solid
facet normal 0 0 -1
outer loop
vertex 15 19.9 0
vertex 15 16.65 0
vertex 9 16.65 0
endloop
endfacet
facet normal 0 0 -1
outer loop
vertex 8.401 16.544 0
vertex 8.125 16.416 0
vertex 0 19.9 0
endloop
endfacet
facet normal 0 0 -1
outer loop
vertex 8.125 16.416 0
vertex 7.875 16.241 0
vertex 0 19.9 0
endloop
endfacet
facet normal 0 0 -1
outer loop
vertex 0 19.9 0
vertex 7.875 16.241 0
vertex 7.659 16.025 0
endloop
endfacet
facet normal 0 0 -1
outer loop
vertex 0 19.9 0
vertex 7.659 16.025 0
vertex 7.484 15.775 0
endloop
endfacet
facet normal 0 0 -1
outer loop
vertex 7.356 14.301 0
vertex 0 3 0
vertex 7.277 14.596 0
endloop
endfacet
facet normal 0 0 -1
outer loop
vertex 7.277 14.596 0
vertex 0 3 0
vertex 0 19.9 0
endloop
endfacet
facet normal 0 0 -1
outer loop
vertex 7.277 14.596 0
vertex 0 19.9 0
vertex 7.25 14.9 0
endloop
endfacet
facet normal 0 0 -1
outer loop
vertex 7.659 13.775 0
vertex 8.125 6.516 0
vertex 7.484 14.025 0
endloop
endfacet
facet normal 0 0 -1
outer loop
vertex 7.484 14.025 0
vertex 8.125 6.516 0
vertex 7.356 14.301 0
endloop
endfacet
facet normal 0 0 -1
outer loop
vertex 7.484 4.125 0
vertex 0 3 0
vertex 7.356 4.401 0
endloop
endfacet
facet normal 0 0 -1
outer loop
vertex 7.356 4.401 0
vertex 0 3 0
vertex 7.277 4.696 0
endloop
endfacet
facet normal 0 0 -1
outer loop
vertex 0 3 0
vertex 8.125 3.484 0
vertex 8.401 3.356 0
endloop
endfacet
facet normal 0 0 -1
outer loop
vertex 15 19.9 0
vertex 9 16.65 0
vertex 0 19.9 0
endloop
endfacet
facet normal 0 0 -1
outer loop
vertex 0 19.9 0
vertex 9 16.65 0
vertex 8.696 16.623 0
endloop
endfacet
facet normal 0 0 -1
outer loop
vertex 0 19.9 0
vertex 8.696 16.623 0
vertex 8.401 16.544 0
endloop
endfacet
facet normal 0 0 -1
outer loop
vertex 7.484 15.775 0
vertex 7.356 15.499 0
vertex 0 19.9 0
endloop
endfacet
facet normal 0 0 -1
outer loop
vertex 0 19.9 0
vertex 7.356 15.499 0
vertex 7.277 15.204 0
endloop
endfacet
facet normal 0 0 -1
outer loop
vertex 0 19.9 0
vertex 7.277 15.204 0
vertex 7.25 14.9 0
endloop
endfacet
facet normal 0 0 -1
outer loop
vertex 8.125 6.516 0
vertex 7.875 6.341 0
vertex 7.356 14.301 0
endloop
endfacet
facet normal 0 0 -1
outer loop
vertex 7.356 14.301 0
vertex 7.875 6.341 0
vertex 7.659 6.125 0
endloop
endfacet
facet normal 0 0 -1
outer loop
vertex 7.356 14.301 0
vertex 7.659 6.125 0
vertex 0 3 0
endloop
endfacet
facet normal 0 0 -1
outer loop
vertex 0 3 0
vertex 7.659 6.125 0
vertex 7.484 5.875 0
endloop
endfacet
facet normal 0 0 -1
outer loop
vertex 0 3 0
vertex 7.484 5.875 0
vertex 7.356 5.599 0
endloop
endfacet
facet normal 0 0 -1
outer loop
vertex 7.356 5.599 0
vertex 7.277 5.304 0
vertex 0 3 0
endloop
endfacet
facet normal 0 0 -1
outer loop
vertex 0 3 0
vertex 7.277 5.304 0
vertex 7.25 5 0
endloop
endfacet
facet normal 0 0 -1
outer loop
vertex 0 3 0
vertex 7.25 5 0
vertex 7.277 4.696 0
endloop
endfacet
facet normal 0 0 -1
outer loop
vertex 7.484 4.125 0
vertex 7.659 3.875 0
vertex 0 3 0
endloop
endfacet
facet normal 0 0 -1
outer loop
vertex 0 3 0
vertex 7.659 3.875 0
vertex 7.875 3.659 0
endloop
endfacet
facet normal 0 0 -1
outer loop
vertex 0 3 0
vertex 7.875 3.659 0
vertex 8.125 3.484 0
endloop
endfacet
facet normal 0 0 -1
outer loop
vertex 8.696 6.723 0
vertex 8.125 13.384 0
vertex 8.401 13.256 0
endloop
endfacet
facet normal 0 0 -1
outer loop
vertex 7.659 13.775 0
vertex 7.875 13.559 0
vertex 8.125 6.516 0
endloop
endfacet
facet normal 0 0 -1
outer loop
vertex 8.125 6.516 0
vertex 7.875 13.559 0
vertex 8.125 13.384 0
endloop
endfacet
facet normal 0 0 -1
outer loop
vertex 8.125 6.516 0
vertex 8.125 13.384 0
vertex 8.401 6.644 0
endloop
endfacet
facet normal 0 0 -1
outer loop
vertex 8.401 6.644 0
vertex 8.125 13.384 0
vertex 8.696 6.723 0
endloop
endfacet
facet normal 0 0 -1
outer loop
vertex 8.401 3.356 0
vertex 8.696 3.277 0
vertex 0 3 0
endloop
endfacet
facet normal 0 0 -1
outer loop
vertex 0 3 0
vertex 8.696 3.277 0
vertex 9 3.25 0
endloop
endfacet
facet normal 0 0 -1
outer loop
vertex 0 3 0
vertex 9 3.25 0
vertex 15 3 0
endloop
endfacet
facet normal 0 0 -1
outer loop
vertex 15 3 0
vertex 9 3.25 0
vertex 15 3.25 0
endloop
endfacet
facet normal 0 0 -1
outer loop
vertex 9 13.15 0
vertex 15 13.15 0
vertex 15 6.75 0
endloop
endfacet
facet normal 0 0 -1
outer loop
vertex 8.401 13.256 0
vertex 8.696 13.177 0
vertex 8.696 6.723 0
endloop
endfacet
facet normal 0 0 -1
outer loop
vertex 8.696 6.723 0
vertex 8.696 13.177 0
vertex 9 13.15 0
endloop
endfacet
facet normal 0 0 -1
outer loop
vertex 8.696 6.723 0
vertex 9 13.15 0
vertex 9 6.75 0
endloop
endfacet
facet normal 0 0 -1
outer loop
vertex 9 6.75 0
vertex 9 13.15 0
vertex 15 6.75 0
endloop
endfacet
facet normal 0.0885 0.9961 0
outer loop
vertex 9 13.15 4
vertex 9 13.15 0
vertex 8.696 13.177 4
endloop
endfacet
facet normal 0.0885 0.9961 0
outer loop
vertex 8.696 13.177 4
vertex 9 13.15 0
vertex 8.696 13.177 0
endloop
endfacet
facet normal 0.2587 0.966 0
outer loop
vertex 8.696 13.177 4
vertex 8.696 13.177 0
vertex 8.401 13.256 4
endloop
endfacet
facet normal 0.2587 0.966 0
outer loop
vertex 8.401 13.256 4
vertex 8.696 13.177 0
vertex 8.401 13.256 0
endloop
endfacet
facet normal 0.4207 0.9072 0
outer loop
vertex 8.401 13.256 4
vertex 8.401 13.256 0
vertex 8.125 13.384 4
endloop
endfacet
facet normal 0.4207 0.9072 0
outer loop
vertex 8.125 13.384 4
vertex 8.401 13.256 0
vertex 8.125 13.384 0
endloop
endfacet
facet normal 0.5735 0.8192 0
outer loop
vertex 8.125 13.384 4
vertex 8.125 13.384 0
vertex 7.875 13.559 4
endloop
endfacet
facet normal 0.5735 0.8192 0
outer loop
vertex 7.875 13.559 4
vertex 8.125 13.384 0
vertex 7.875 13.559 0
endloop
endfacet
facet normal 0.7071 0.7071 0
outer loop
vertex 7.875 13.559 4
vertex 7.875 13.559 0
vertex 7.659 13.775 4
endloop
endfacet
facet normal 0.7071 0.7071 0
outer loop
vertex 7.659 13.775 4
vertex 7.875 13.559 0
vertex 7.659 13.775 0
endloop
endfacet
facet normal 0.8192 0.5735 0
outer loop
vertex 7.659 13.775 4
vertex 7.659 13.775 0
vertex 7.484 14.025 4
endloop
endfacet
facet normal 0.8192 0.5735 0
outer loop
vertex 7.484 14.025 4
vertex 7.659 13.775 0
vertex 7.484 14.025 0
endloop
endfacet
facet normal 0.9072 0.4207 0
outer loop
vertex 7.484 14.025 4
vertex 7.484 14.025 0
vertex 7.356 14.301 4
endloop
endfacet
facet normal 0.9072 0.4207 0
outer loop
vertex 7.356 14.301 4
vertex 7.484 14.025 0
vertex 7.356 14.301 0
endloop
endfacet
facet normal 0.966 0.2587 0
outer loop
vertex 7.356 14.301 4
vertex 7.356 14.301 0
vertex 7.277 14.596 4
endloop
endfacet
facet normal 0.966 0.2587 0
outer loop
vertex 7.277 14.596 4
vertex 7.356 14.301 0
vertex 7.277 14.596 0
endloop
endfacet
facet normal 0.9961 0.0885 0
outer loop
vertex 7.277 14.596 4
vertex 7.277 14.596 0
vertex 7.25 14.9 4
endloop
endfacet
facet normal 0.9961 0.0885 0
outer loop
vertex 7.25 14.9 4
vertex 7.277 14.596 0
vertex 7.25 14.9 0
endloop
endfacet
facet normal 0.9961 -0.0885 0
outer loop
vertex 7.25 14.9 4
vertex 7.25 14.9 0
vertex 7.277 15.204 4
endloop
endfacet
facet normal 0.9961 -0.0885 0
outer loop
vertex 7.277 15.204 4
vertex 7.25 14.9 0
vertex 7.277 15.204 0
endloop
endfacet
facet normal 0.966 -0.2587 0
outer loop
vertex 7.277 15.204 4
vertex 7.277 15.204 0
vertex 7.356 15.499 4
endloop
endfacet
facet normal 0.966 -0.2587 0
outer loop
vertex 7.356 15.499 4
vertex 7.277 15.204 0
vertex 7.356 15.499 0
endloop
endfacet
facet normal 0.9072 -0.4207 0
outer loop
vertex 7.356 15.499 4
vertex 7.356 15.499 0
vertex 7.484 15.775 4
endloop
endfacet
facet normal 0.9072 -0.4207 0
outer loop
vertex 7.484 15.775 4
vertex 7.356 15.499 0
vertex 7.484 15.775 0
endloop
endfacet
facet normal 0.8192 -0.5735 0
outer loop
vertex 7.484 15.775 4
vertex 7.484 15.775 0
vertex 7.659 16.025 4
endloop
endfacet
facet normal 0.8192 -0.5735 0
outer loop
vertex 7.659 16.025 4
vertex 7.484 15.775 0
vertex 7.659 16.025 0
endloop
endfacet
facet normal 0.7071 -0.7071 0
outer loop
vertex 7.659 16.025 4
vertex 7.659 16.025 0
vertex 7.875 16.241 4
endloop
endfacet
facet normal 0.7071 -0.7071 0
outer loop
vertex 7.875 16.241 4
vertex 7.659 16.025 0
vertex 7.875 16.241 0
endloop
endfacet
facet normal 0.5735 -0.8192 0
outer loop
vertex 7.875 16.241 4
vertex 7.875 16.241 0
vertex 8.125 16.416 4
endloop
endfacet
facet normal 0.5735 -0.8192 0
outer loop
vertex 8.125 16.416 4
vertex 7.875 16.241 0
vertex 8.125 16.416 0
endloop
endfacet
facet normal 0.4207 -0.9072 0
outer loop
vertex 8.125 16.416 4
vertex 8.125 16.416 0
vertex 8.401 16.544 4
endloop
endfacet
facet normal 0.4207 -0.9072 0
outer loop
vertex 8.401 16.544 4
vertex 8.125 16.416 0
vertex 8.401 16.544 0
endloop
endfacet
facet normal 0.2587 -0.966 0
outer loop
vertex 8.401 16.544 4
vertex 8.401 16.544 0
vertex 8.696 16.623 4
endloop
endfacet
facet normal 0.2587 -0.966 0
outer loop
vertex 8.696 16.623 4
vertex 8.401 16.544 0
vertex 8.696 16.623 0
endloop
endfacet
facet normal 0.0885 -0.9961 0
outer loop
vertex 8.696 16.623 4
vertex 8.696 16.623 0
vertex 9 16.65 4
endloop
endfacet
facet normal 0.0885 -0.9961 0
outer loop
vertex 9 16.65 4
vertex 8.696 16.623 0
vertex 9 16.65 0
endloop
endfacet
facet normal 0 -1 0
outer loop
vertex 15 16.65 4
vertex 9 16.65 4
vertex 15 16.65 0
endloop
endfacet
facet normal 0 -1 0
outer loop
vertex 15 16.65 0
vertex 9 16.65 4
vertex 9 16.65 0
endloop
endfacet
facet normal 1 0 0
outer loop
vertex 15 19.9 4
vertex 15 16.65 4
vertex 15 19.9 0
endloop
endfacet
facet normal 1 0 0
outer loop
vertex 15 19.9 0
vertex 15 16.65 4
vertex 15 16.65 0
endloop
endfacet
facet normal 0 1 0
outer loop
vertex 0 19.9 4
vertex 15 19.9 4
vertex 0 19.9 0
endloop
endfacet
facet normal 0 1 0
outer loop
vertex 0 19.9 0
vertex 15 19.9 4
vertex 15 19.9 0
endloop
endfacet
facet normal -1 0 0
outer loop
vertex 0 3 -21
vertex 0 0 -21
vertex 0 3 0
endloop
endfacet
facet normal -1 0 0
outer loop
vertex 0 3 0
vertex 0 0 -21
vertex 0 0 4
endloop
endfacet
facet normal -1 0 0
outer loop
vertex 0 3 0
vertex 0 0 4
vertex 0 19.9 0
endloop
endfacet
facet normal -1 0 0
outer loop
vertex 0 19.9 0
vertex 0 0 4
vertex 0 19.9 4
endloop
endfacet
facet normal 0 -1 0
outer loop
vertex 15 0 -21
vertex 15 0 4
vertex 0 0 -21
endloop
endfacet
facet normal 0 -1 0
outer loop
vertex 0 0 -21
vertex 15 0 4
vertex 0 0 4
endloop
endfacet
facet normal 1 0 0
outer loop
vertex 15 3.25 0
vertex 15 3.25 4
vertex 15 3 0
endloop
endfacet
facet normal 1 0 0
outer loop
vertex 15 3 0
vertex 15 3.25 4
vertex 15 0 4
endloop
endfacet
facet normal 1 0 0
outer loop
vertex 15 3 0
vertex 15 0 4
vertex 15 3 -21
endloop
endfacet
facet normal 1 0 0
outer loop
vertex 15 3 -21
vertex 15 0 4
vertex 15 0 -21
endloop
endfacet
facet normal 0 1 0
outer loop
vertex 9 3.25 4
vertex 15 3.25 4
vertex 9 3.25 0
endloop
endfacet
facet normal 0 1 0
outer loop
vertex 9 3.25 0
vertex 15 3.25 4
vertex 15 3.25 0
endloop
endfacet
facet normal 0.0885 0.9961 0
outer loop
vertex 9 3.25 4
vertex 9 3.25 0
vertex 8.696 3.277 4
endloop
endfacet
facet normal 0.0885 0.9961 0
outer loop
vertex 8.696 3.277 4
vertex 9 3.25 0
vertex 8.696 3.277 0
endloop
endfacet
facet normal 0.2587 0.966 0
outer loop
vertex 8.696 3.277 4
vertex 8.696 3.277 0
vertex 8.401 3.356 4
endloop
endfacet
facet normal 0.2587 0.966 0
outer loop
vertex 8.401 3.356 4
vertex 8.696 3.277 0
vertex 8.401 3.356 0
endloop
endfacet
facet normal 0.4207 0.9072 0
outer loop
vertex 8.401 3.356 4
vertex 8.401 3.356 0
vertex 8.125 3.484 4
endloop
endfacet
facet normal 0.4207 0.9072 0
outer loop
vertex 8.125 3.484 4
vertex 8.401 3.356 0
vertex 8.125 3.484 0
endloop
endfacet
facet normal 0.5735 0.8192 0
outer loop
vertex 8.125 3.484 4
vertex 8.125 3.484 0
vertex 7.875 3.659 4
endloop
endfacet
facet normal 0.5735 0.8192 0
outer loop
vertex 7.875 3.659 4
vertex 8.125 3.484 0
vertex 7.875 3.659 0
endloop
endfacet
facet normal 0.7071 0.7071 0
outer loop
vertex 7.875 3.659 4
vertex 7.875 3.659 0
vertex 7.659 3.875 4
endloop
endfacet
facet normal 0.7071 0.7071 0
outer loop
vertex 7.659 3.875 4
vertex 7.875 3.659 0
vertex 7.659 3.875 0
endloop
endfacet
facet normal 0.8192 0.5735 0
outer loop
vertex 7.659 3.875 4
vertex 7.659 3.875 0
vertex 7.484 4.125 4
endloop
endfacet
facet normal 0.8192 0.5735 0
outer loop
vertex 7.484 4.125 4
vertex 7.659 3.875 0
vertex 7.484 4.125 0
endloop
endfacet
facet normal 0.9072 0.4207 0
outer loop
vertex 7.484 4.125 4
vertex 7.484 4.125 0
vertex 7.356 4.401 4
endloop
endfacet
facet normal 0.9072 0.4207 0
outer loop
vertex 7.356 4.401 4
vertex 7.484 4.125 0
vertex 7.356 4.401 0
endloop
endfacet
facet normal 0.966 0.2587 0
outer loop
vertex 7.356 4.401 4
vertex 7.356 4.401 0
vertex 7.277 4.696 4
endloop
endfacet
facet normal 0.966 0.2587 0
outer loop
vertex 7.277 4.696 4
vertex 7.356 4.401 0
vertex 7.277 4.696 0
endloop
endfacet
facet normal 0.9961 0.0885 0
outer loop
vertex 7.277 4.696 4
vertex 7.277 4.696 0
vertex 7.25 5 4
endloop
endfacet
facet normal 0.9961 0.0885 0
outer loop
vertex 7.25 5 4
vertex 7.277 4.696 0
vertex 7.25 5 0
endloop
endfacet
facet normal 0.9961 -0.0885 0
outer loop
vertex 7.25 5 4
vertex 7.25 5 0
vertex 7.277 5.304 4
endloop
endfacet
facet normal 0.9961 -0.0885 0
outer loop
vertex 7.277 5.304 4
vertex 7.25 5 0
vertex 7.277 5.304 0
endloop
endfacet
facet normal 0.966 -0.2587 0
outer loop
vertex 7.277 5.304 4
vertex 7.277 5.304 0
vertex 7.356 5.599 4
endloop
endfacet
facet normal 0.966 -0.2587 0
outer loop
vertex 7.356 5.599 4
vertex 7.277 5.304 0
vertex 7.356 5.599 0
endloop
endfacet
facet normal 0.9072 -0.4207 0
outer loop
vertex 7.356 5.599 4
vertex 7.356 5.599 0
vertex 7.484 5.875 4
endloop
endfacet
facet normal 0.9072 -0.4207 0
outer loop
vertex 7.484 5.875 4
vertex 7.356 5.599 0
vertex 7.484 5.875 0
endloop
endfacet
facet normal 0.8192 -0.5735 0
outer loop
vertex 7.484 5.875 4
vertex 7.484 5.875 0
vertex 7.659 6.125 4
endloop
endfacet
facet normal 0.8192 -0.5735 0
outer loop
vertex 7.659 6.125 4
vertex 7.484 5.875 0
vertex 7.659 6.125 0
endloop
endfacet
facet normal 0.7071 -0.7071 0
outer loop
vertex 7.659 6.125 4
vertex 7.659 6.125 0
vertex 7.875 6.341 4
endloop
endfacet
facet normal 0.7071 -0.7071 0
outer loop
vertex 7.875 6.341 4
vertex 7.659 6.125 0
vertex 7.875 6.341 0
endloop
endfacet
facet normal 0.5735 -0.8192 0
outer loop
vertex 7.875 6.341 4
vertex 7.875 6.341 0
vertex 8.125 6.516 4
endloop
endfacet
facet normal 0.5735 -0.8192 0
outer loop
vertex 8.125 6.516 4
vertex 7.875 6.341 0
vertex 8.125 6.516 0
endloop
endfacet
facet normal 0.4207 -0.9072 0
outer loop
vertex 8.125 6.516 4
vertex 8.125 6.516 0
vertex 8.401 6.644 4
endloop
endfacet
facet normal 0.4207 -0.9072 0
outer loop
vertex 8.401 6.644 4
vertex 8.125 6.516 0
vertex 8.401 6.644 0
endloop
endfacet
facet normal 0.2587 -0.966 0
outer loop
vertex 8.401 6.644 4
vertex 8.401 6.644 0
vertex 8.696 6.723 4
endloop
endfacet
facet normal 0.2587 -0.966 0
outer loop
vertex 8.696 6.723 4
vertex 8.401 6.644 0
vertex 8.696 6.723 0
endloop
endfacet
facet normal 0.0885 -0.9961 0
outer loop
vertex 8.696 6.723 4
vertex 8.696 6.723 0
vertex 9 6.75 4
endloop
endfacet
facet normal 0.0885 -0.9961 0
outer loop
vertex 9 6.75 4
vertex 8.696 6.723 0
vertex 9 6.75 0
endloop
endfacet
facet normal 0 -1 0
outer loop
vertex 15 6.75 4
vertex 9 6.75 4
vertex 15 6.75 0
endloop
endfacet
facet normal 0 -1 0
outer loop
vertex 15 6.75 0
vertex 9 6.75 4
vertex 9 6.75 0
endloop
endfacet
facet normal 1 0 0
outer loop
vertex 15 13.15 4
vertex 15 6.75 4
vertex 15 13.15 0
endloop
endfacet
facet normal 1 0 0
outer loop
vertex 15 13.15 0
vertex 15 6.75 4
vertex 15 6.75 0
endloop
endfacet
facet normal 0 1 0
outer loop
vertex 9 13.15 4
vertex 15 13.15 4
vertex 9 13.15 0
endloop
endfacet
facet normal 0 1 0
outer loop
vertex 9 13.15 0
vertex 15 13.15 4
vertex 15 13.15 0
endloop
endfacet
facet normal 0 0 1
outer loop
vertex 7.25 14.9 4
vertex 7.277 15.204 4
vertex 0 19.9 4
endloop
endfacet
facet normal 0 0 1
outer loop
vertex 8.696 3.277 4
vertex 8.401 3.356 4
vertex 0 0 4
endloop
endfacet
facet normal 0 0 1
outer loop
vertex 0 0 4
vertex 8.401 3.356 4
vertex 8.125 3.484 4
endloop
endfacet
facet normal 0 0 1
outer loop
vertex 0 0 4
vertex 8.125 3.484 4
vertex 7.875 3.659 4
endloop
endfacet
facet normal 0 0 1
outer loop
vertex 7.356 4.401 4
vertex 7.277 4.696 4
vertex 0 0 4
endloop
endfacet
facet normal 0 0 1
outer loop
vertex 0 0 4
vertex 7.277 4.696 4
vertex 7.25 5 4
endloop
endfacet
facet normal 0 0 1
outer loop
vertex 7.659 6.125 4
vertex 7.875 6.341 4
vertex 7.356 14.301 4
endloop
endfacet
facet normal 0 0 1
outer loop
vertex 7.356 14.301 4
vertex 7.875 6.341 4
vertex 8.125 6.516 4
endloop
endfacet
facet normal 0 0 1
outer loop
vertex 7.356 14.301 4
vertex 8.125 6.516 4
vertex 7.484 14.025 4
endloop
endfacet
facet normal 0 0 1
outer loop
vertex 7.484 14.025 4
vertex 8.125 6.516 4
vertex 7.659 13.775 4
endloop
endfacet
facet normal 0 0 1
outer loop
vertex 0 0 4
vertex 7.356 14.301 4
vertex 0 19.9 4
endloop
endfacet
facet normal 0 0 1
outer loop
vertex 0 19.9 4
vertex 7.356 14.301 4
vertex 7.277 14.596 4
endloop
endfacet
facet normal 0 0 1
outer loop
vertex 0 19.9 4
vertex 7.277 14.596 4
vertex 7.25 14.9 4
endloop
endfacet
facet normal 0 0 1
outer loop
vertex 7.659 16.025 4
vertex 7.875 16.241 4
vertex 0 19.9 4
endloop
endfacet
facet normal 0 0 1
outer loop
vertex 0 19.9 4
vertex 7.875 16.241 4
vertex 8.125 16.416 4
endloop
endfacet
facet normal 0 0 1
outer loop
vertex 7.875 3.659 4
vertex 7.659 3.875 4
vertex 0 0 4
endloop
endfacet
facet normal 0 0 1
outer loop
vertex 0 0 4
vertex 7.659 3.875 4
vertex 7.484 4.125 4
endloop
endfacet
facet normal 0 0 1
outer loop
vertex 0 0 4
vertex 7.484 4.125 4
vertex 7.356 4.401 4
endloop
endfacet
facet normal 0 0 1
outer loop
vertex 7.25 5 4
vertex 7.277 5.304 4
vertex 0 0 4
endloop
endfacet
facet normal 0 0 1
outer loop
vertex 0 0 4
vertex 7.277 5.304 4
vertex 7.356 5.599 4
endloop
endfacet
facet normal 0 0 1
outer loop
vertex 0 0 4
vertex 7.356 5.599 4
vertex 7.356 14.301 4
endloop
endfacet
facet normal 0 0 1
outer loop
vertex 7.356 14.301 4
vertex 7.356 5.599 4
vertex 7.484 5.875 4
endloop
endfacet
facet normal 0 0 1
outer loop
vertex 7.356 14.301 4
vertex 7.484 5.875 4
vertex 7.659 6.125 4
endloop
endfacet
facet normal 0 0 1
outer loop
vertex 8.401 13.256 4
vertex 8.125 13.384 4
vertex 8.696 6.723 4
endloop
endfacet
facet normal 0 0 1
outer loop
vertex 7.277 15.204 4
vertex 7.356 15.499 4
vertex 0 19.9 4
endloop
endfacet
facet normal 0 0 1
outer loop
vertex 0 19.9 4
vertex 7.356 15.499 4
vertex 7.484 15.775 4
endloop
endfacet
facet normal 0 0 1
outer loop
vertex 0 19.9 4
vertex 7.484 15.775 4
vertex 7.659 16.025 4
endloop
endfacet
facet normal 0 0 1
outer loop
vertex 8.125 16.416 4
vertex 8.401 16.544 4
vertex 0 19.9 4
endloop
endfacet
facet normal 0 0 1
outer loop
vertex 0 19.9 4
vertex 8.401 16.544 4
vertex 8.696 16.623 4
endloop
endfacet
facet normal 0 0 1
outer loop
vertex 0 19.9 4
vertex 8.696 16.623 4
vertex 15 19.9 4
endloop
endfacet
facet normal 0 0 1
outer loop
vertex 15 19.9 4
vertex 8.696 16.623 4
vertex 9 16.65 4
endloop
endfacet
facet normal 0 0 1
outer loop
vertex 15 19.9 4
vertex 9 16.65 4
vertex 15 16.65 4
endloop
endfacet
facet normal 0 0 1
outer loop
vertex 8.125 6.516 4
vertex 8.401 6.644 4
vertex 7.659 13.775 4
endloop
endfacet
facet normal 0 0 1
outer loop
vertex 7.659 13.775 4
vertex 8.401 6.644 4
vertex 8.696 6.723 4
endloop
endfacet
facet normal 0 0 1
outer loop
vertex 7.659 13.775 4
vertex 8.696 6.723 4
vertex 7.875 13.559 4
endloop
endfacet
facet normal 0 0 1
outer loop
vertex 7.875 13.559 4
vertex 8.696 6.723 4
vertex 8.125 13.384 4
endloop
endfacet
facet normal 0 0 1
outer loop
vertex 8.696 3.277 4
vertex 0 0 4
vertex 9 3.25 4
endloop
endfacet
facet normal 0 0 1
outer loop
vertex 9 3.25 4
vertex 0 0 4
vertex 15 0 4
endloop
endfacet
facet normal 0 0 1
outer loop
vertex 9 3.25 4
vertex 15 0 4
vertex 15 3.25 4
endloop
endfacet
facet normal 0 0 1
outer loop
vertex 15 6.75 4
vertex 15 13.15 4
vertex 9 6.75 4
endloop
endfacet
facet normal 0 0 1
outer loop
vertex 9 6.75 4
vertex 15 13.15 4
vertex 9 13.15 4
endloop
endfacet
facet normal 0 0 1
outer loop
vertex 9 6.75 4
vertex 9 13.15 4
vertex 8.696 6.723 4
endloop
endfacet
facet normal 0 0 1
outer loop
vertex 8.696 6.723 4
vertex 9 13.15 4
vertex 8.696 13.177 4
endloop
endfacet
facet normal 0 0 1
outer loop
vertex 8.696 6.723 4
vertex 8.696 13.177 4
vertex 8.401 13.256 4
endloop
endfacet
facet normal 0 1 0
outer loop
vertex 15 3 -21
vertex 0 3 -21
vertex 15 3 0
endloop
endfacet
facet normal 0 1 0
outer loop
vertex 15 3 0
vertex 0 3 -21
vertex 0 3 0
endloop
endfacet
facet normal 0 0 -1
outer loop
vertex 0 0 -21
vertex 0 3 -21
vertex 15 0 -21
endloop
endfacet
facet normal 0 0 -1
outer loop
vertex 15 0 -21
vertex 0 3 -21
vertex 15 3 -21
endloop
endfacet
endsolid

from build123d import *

# Parameters (mm, degrees)
ESTRUSIONE_ESTRUSIONE1_DEPTH = 4
SCHIZZO2_W                   = 15
SCHIZZO2_H                   = 3
ESTRUSIONE_ESTRUSIONE2_DEPTH = 21


with BuildPart() as part:
    # Schizzo1 → Estrusione-Estrusione1 (new body)
    with BuildSketch(Plane.XY):
        with BuildLine():
            Line((0, 19.9), (0, 0))
            Line((0, 0), (15, 0))
            Line((15, 0), (15, 3.25))
            Line((15, 3.25), (9, 3.25))
            ThreePointArc((9, 3.25), (7.25, 5), (9, 6.75))
            Line((9, 6.75), (15, 6.75))
            Line((15, 6.75), (15, 13.15))
            Line((15, 13.15), (9, 13.15))
            ThreePointArc((9, 13.15), (7.25, 14.9), (9, 16.65))
            Line((9, 16.65), (15, 16.65))
            Line((15, 16.65), (15, 19.9))
            Line((15, 19.9), (0, 19.9))
        make_face()
    extrude(amount=ESTRUSIONE_ESTRUSIONE1_DEPTH)

    # Schizzo2 → Estrusione-Estrusione2 (add)
    with BuildSketch(Plane(origin=(0, 0, 0), x_dir=(-1, 0, 0), z_dir=(0, 0, -1))):
        with Locations((-7.5, 1.5)):
            Rectangle(SCHIZZO2_W, SCHIZZO2_H)
    extrude(amount=ESTRUSIONE_ESTRUSIONE2_DEPTH)


solid = part.part
